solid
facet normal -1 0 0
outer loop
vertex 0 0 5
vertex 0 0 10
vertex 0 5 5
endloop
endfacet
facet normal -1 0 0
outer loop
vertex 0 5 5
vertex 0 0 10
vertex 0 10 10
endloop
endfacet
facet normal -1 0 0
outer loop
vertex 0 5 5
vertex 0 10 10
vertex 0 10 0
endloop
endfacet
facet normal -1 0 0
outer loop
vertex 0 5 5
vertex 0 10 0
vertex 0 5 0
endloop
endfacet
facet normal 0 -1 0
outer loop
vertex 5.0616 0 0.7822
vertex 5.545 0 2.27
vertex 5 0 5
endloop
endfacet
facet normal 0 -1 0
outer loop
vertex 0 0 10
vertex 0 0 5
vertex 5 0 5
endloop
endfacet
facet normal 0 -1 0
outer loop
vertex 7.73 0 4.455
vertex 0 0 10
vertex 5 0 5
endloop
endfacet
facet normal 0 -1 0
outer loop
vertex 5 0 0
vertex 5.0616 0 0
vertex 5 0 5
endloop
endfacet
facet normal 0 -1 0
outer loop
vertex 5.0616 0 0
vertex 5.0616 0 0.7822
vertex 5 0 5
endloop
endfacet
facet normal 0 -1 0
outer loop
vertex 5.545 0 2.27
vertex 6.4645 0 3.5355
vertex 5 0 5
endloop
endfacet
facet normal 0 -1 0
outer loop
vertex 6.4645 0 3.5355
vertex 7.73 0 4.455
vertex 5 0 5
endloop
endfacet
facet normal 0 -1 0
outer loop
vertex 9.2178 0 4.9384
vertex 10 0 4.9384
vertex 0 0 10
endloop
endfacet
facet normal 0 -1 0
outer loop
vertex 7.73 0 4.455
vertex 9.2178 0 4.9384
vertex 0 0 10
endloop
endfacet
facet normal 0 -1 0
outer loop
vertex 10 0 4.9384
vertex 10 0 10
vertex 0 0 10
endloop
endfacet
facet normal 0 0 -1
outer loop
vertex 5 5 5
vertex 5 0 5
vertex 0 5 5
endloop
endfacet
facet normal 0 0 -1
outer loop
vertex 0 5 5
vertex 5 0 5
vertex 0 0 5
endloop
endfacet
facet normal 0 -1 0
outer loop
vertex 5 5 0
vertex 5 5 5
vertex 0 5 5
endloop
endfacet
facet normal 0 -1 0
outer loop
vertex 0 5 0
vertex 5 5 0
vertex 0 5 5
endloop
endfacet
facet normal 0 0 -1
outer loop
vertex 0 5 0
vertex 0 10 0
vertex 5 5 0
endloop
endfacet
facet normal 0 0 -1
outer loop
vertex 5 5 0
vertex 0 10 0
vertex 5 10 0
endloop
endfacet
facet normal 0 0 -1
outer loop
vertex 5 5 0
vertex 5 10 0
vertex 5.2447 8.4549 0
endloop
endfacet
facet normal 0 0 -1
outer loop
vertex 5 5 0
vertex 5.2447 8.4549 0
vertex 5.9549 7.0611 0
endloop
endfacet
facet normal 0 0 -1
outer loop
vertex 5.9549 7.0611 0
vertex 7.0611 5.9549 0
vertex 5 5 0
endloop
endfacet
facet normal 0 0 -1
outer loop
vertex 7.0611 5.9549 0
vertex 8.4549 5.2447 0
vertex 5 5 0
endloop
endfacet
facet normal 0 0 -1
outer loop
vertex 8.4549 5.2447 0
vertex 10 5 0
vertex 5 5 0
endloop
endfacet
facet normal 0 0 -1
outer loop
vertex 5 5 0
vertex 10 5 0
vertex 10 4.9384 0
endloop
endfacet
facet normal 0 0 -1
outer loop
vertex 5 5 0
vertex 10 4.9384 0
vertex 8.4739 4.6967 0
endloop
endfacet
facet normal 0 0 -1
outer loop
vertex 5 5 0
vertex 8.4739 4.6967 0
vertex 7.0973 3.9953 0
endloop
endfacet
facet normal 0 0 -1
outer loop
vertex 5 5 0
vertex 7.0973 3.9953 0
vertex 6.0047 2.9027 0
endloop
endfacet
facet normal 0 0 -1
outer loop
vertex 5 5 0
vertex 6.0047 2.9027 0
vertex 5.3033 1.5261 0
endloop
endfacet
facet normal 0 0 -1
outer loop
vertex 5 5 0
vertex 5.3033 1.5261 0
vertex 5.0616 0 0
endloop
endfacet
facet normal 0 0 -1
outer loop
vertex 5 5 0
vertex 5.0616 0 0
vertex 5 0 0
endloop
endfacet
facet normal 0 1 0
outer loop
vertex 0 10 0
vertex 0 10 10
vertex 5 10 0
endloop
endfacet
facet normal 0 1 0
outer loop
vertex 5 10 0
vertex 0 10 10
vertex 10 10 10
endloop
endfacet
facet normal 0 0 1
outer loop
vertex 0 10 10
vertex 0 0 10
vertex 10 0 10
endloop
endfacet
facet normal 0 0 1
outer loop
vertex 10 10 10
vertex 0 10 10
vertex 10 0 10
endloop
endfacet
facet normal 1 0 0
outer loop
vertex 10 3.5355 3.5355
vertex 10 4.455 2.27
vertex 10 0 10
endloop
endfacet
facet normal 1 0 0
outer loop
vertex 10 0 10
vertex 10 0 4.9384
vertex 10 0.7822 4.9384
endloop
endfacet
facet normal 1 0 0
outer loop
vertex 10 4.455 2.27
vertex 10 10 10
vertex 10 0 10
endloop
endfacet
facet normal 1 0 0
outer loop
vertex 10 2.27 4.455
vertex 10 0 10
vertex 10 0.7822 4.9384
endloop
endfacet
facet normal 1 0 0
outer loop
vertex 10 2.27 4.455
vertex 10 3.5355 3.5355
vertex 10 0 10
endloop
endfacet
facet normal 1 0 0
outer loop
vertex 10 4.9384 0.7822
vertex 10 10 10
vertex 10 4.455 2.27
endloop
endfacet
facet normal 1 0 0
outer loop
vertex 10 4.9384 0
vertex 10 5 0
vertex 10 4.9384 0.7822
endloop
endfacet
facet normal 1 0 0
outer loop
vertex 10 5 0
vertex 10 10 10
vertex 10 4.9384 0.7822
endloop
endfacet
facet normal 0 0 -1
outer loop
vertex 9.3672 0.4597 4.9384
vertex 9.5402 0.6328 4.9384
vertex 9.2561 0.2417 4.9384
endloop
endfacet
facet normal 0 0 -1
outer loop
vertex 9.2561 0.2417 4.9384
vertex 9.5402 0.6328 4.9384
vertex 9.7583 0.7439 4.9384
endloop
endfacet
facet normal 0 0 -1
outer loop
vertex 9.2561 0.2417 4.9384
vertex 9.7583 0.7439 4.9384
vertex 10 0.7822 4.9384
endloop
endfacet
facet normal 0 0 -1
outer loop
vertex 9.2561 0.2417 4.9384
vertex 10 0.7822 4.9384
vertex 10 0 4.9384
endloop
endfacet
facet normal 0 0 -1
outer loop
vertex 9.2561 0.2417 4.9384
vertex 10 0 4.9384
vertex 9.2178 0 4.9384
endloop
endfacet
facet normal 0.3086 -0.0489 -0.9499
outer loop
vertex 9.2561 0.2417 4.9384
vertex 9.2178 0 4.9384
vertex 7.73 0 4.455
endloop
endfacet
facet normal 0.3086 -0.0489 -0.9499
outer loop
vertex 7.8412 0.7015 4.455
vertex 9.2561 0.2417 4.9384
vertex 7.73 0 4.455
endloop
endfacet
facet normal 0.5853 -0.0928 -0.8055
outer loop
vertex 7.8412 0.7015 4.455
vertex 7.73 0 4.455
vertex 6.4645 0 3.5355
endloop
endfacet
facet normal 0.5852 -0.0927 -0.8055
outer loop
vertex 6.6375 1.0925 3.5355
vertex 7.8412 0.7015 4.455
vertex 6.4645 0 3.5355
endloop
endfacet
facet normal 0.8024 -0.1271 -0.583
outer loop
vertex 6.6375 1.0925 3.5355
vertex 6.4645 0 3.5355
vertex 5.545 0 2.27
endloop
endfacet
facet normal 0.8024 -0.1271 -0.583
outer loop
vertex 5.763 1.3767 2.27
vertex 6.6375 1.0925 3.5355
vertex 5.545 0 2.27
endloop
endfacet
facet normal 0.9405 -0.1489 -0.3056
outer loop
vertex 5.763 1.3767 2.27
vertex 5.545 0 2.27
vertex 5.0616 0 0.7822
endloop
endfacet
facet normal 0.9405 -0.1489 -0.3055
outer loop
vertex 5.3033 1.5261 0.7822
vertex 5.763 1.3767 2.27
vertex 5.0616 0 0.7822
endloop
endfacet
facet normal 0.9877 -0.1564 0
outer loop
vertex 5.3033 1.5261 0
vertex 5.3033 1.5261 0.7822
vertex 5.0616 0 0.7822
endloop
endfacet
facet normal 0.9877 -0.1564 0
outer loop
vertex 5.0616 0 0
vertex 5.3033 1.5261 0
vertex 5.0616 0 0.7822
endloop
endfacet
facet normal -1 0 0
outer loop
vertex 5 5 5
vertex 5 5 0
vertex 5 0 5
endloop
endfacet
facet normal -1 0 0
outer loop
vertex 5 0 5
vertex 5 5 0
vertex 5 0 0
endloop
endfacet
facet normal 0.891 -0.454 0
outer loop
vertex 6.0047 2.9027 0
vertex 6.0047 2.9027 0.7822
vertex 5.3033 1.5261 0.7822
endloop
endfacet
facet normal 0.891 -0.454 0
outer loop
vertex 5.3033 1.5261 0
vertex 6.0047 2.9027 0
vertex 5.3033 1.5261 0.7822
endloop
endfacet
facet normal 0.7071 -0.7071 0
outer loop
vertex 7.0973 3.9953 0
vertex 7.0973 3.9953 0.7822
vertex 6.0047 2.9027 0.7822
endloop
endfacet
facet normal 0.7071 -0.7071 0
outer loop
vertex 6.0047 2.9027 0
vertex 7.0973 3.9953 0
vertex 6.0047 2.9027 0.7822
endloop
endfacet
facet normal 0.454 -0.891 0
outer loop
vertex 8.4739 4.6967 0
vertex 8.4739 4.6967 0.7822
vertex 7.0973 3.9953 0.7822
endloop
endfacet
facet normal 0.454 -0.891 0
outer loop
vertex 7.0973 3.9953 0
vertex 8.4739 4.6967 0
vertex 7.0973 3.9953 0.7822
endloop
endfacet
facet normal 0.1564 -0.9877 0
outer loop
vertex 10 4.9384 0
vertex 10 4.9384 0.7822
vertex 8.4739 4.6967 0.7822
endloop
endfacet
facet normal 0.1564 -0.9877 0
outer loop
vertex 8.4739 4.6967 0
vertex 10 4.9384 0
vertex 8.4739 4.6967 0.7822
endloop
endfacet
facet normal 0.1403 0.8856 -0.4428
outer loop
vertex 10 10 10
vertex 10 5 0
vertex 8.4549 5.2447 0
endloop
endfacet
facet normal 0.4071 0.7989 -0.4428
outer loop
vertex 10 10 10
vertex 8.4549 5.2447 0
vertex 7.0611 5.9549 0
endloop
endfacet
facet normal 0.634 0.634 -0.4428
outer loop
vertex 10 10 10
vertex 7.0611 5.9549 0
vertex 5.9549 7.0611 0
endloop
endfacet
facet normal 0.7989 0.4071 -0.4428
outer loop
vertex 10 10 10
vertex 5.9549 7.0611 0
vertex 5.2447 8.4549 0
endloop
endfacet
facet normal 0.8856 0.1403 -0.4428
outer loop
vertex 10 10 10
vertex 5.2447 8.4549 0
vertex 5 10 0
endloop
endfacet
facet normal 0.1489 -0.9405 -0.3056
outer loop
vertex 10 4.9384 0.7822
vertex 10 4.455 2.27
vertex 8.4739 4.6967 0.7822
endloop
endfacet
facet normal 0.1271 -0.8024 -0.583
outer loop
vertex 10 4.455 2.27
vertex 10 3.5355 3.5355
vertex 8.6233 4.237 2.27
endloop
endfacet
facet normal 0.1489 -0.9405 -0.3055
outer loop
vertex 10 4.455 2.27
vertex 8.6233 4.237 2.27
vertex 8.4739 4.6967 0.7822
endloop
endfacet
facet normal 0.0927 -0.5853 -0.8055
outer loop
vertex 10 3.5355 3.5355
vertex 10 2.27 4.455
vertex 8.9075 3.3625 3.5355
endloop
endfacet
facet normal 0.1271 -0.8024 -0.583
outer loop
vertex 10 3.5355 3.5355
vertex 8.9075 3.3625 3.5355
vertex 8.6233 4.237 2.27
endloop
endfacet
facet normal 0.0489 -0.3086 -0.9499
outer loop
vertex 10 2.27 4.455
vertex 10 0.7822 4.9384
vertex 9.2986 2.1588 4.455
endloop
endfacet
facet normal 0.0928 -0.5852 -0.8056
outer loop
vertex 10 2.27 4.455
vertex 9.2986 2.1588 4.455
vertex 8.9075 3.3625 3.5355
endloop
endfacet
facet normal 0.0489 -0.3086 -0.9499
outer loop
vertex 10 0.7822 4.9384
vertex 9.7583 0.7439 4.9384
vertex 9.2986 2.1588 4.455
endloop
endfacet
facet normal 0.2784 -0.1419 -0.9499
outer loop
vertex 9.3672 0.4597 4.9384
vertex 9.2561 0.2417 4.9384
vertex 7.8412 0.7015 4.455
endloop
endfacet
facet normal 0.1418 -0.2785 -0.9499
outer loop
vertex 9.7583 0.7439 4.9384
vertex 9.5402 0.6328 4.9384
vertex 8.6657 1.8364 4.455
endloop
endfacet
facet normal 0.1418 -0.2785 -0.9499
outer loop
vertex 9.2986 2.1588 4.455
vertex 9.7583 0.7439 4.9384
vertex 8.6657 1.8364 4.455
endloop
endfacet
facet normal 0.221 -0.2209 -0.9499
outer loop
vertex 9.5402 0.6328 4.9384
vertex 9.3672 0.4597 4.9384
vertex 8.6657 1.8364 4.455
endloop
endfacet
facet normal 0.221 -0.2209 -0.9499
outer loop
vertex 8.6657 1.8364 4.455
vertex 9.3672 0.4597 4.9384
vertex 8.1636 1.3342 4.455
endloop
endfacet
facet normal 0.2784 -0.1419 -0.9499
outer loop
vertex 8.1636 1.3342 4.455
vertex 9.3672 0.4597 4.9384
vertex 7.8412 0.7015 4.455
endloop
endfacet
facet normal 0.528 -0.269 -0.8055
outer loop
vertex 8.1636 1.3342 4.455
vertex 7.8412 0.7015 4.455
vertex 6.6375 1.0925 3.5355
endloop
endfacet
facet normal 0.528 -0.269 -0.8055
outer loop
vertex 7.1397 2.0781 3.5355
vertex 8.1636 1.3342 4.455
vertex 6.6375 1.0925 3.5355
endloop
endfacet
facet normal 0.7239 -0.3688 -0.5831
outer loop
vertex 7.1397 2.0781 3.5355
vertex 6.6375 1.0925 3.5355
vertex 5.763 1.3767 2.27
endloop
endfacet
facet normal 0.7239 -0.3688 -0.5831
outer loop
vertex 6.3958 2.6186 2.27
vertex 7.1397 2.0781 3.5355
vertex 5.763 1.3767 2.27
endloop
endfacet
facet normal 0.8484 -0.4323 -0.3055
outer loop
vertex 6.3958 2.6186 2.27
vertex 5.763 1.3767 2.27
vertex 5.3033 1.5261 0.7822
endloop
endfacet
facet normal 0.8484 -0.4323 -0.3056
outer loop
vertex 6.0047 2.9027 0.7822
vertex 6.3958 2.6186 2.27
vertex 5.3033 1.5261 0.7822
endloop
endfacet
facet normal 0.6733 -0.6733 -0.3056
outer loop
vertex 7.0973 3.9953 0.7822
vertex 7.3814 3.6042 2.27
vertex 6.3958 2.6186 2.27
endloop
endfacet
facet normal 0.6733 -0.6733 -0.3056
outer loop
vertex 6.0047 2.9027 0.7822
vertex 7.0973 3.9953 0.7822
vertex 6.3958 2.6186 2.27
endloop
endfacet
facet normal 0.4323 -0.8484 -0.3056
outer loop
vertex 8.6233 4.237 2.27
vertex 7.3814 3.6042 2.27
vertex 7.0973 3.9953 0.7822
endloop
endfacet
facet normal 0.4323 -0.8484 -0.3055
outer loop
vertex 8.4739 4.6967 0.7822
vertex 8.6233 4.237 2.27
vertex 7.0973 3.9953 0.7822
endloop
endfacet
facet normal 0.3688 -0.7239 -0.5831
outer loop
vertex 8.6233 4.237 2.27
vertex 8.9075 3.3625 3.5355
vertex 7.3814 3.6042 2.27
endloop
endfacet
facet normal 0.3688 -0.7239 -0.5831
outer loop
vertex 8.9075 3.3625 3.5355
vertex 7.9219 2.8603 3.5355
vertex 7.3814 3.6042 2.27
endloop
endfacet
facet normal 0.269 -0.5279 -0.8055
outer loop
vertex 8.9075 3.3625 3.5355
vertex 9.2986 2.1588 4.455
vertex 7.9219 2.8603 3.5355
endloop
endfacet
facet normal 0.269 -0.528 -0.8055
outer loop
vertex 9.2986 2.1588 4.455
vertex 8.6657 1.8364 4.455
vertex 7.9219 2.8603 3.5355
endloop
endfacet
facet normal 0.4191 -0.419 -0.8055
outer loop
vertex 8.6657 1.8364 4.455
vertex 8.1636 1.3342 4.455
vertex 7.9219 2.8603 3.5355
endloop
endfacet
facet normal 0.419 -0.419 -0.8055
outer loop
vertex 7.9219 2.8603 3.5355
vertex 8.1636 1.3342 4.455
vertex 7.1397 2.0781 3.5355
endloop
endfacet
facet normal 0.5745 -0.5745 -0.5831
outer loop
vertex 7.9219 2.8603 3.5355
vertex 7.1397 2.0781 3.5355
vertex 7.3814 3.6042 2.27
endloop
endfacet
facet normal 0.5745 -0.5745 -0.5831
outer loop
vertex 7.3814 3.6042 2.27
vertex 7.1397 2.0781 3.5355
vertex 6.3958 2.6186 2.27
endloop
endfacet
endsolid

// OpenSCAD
// Cube Fancy 10mm, written by Rene K. Mueller <spiritdude@gmail.com>
//
// License: GPLv2
//
// History:
// 2013/02/12: first version
//
// Features:
// complex foot, gradual and heavy hangover

// units [mm]

difference() {
   cube(size=10);
   union() {
      cube(size=5);
      translate([10,0,0]) sphere(r=5,center=true,$fn=20);
      translate([10,10,0]) cylinder(h=10,r1=5,r2=0,$fn=20); 
   }
}
